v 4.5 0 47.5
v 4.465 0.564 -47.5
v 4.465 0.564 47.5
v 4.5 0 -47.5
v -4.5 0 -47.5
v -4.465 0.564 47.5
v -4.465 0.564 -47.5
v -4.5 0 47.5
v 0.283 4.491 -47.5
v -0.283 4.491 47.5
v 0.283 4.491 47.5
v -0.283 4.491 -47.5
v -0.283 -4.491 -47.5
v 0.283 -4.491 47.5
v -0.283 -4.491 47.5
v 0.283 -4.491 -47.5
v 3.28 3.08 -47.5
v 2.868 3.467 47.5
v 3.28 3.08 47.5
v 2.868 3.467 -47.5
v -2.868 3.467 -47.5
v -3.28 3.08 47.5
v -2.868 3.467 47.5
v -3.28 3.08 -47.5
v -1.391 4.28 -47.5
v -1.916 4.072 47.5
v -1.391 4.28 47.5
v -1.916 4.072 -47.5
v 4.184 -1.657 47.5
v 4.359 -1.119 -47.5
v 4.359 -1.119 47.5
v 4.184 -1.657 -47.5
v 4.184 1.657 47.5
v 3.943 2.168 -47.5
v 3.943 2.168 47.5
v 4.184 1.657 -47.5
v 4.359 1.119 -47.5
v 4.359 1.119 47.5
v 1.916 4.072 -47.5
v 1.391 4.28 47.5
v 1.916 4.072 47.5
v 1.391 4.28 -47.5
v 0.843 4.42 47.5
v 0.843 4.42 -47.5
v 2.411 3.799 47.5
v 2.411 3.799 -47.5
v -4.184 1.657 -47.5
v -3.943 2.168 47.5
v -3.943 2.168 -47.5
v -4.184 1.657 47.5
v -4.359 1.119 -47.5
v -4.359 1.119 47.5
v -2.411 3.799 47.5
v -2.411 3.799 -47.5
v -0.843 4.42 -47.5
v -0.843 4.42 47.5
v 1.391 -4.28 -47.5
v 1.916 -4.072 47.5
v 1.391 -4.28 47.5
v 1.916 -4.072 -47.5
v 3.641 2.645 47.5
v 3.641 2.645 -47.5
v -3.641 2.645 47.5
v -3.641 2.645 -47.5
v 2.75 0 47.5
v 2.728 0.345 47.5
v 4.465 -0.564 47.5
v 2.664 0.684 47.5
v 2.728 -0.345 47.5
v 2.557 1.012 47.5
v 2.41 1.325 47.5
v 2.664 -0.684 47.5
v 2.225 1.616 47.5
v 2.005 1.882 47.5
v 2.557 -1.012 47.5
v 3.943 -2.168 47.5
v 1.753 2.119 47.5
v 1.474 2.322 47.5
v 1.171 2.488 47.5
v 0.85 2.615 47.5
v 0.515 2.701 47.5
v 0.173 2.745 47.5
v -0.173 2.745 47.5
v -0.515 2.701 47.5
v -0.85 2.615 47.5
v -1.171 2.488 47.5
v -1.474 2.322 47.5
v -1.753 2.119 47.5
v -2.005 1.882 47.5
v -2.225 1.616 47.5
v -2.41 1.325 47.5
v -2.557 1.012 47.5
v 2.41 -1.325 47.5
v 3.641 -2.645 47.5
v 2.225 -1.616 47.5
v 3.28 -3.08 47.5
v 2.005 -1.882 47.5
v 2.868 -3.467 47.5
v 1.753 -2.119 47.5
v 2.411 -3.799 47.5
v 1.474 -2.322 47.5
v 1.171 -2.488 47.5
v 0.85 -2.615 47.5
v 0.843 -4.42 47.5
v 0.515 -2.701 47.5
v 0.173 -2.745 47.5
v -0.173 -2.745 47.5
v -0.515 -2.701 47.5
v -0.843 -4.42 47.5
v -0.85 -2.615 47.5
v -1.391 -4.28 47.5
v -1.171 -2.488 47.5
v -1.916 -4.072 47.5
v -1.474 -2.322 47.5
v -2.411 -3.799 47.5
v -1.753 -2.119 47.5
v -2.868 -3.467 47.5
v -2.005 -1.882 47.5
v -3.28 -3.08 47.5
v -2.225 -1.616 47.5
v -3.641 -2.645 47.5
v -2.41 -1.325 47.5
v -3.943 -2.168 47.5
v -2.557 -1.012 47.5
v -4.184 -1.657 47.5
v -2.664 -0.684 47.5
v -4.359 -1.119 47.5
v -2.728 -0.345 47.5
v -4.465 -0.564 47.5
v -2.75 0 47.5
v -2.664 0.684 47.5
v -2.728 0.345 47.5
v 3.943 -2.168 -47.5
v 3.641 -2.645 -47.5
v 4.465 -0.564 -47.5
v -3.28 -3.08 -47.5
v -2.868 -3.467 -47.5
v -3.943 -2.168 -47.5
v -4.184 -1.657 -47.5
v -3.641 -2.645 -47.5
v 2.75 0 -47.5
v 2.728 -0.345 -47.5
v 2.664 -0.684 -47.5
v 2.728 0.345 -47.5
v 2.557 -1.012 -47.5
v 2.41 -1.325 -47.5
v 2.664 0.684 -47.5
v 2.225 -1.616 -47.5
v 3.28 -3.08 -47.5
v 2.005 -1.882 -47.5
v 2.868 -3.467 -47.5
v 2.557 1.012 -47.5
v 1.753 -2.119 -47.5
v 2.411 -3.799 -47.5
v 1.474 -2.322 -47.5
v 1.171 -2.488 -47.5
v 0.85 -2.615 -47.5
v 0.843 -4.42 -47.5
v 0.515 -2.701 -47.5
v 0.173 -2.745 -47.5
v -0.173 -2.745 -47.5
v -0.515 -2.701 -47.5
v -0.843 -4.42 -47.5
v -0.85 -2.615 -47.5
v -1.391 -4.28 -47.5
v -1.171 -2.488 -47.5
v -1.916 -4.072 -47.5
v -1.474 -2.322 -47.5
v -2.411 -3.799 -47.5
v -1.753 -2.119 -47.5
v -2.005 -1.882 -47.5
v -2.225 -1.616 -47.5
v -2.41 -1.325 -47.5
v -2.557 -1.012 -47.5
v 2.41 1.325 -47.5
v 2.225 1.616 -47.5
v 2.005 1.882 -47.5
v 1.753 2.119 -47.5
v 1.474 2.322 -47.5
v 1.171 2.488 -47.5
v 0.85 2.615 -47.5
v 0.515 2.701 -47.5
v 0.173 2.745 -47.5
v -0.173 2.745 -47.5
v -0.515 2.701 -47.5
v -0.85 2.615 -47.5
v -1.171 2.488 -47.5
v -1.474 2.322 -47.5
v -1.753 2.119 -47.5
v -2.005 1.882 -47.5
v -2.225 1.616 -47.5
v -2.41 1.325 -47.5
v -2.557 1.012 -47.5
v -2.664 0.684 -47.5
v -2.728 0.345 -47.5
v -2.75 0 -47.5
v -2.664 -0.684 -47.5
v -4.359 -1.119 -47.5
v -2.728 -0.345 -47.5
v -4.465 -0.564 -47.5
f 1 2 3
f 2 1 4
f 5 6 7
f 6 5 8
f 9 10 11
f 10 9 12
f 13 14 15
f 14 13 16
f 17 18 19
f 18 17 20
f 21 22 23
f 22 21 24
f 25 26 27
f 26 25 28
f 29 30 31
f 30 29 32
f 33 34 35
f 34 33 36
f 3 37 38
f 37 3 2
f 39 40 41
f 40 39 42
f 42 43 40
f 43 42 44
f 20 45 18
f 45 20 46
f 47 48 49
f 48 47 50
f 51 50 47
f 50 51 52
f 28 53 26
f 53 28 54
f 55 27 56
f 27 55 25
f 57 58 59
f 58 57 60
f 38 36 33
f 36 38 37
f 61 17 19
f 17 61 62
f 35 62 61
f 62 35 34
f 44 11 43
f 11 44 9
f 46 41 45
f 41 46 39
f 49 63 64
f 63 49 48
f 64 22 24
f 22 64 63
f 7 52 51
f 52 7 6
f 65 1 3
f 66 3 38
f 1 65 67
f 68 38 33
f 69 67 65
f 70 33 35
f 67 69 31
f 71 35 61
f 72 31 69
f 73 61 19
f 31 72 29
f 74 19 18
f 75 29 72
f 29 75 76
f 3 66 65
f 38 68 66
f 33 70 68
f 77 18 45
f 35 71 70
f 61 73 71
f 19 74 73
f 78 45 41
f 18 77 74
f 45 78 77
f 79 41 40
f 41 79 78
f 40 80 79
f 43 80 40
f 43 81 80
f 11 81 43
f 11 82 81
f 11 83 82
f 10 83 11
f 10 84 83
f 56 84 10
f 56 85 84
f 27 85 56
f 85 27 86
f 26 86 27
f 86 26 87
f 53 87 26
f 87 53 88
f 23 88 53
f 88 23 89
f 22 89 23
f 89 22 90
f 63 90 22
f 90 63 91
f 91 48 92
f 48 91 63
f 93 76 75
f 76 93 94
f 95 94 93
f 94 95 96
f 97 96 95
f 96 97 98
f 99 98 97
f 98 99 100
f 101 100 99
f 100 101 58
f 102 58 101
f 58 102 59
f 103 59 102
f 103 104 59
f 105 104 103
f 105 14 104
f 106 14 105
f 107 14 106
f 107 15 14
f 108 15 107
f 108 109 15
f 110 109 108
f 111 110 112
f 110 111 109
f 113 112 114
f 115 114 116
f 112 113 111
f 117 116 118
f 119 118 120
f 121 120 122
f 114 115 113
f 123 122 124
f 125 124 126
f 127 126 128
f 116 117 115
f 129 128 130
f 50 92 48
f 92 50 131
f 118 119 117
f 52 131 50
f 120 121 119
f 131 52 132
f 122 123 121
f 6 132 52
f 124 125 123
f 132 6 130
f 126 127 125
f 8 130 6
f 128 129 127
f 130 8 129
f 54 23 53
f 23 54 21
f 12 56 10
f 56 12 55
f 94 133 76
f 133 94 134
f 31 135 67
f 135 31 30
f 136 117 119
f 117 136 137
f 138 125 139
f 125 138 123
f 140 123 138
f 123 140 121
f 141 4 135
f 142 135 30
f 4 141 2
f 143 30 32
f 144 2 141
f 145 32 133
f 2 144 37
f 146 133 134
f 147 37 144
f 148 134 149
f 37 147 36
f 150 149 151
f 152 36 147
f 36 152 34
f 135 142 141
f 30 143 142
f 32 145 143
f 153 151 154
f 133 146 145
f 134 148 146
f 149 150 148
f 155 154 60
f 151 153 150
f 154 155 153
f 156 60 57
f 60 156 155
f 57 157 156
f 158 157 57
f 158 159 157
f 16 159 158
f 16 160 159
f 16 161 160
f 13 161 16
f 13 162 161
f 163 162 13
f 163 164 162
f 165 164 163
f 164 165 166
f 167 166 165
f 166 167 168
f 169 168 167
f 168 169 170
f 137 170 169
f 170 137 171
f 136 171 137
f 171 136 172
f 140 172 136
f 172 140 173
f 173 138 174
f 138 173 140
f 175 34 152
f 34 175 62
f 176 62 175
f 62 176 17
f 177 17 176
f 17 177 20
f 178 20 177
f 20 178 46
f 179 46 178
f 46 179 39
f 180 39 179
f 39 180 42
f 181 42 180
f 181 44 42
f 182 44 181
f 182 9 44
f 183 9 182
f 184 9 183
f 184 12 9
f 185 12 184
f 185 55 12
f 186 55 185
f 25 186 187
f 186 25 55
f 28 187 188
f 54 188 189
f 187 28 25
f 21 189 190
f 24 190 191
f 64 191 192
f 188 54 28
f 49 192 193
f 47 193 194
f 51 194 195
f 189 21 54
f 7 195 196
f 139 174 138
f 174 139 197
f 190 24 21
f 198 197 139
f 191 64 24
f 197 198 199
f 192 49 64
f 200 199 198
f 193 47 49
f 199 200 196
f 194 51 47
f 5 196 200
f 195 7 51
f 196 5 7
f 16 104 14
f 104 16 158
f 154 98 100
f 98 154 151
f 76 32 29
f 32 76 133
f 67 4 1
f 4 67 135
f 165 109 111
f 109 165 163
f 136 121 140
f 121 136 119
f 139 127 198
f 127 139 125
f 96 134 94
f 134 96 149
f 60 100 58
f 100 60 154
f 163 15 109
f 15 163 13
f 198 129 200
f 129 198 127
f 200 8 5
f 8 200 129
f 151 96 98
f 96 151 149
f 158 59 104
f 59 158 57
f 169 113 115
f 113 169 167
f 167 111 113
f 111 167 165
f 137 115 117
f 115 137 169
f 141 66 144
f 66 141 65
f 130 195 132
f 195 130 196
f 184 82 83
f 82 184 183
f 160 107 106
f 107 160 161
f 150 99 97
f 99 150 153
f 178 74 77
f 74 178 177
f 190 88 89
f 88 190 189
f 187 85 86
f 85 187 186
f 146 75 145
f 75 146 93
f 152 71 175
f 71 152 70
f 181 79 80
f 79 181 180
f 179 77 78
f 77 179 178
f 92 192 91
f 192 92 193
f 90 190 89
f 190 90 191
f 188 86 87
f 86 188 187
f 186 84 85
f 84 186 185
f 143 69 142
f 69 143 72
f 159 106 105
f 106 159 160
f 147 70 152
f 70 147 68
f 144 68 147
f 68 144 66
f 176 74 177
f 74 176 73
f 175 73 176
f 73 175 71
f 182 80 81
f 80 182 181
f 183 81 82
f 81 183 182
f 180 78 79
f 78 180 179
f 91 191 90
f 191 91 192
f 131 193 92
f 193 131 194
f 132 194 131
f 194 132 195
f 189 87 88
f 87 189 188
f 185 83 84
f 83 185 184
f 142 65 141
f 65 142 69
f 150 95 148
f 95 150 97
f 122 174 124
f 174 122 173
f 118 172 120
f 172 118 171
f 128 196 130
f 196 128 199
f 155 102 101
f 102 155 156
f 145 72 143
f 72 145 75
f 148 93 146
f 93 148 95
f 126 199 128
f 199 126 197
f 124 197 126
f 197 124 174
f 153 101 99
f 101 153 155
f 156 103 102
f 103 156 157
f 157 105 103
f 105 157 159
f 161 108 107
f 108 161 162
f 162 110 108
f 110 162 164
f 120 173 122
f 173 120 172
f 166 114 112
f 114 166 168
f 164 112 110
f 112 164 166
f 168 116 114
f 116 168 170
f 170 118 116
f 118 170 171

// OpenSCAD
$fn = 50;


difference() {
	union() {
		translate(v = [0, 0, -47.5000000000]) {
			cylinder(h = 95, r = 4.5000000000);
		}
	}
	union() {
		translate(v = [0, 0, -100.0000000000]) {
			cylinder(h = 200, r = 2.7500000000);
		}
	}
}
